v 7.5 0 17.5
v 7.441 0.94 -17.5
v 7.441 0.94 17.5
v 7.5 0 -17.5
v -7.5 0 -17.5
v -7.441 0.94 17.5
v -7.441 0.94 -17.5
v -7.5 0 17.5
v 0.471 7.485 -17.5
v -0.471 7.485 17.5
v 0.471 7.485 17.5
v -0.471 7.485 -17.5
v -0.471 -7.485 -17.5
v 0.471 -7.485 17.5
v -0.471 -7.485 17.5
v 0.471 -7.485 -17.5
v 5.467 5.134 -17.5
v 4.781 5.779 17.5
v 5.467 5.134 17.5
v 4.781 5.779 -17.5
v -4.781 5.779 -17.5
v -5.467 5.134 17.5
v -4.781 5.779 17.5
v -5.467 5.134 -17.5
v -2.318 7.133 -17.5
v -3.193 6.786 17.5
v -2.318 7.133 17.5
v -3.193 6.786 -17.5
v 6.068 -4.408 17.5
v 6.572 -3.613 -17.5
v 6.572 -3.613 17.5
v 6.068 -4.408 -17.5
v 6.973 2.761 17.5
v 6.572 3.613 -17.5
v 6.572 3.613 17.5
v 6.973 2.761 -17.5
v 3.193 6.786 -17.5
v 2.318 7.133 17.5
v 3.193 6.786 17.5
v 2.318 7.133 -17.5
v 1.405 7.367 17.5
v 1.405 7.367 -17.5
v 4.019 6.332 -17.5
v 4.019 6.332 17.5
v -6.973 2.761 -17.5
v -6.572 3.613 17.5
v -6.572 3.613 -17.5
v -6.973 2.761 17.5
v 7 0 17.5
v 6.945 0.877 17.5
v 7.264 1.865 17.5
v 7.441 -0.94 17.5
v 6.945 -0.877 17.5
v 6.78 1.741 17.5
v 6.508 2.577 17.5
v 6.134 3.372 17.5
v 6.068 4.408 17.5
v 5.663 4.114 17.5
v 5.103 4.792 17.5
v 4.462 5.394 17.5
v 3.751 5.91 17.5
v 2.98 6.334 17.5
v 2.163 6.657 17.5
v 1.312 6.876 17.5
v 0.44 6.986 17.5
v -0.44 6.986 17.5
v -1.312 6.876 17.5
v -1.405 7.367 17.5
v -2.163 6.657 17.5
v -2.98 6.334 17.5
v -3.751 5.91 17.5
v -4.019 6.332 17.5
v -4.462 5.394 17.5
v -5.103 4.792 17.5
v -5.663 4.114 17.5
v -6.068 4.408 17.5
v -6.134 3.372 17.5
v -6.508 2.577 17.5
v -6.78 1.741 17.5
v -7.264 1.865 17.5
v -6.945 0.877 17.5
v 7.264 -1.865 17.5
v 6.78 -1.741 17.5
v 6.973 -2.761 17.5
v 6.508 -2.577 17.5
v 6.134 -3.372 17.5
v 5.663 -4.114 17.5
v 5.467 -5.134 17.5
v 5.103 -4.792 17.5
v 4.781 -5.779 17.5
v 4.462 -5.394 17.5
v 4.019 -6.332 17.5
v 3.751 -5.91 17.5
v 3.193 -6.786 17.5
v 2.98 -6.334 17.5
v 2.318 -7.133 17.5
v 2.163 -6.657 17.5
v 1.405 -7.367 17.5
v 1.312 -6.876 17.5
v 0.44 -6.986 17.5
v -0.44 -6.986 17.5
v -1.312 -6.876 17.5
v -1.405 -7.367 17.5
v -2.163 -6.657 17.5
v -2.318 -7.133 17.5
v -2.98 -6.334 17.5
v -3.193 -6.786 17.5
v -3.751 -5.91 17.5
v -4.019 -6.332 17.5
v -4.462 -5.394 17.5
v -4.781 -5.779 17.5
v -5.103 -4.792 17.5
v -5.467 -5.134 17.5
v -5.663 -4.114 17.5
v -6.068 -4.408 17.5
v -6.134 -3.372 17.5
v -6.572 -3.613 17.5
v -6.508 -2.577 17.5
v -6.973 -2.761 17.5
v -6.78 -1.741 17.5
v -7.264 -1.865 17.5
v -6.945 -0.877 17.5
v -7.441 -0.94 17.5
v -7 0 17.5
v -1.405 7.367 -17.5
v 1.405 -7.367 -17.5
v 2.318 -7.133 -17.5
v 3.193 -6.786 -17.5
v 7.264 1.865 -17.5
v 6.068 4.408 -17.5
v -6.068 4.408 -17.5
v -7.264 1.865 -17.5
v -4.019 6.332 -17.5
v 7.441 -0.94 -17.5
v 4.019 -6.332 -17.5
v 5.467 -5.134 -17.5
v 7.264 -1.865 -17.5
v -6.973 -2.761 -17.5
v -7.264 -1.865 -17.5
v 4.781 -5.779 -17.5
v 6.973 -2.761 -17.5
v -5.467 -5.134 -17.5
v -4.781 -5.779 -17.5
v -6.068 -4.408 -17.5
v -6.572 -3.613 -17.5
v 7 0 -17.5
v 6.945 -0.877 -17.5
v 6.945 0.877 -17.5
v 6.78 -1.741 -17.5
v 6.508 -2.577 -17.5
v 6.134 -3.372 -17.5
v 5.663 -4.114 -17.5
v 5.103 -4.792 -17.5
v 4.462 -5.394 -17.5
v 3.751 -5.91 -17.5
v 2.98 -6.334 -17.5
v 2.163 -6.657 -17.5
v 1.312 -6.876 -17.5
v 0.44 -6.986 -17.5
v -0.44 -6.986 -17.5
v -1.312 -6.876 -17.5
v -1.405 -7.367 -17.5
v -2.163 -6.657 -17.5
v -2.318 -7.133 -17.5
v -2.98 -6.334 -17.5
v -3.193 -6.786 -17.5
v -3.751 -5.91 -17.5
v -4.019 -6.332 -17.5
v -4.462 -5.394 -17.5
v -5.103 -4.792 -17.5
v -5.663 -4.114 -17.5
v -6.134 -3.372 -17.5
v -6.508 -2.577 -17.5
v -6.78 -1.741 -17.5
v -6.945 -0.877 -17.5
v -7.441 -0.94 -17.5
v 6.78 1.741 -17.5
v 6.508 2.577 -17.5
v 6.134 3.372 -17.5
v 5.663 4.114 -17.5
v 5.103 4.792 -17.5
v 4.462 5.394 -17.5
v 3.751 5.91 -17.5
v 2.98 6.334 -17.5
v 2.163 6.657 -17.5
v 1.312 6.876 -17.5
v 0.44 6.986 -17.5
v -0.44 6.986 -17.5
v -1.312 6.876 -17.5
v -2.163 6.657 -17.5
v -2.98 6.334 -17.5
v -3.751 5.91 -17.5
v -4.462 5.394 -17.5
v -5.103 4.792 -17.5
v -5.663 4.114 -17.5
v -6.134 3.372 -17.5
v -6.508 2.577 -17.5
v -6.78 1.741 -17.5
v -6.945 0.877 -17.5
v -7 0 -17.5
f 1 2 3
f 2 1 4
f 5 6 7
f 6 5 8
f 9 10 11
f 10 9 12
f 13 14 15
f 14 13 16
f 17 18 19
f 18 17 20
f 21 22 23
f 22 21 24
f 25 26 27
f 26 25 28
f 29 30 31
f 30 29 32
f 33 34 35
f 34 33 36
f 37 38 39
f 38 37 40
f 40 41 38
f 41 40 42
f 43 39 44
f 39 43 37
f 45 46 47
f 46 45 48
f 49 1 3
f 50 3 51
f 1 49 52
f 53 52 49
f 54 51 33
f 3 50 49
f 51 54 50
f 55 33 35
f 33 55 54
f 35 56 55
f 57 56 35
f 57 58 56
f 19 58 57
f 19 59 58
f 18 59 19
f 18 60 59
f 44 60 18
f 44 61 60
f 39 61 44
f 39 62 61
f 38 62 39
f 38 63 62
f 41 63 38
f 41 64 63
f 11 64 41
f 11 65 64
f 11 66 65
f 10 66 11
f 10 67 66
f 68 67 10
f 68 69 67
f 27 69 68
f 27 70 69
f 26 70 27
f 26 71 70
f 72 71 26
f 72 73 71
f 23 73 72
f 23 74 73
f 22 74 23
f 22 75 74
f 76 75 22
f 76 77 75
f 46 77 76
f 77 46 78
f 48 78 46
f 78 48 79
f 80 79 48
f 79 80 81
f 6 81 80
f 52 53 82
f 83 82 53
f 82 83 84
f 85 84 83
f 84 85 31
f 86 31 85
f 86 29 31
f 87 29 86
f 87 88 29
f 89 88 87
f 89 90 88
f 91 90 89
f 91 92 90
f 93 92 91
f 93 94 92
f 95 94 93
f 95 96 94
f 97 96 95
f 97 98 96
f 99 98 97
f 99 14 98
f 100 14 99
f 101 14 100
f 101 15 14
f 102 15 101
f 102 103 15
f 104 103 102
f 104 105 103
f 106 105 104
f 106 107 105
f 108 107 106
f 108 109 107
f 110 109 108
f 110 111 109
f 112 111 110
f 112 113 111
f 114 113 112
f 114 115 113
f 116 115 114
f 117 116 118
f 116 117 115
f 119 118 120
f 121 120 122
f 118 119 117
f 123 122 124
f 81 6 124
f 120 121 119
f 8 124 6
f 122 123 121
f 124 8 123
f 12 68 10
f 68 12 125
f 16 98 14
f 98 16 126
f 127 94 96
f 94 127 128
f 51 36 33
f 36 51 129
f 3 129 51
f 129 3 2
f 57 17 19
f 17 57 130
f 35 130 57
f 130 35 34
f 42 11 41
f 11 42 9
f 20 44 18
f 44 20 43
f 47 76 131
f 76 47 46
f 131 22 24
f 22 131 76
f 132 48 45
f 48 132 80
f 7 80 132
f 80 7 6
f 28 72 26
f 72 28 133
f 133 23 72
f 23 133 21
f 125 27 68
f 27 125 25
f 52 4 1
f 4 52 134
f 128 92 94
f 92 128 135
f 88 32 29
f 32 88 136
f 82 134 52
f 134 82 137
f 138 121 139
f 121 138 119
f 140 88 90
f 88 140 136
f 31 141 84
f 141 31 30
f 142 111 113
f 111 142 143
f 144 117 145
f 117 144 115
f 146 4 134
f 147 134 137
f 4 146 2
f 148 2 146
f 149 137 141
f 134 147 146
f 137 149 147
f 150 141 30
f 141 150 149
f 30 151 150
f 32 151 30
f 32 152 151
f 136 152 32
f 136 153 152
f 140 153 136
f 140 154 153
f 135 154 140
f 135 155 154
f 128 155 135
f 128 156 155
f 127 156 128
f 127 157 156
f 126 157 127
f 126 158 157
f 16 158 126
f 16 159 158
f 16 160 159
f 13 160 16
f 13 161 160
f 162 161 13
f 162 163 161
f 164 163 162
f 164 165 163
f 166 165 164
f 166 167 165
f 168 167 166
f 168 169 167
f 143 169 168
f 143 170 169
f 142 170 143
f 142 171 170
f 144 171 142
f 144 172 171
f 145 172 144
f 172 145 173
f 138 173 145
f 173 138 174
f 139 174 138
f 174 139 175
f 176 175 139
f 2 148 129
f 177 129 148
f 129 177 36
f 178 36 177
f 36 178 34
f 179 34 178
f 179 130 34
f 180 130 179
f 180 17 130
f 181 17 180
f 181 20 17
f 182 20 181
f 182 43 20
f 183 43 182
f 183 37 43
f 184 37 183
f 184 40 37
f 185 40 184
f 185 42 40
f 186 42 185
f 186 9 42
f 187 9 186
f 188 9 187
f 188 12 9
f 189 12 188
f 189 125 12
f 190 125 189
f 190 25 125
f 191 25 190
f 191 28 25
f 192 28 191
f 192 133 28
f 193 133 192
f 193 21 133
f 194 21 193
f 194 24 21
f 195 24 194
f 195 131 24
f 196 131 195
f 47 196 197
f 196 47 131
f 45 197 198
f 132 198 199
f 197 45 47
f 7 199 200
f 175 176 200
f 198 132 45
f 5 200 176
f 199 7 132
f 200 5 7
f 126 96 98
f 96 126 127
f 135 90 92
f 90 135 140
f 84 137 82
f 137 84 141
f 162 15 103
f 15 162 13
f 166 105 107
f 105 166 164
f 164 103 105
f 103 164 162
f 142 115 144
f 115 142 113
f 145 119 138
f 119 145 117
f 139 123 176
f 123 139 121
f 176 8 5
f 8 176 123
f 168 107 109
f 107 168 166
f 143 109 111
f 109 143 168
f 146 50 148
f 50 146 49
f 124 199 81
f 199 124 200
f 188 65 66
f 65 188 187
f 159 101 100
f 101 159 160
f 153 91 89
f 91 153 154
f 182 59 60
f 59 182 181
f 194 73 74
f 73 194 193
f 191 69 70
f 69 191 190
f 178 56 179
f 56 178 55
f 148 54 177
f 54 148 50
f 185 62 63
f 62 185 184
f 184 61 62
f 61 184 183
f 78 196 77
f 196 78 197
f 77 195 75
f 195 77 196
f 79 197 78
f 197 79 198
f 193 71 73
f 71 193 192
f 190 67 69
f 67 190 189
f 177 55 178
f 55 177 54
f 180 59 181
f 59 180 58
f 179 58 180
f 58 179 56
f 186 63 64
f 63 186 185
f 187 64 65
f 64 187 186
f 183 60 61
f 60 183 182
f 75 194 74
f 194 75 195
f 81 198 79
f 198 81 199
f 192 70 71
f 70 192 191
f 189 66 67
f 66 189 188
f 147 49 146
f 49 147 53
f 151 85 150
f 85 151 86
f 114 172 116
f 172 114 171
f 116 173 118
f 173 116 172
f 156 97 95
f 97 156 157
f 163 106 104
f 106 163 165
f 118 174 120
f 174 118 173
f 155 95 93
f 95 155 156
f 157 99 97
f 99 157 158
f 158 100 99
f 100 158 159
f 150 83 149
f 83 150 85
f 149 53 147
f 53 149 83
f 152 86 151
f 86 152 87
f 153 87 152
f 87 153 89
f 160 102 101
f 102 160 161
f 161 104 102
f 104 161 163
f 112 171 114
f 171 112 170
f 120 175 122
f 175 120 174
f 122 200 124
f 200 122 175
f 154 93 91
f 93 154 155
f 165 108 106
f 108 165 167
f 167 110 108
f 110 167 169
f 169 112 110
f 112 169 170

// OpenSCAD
$fn = 50;


difference() {
	union() {
		translate(v = [0, 0, -17.5000000000]) {
			cylinder(h = 35, r = 7.5000000000);
		}
	}
	union() {
		translate(v = [0, 0, -100.0000000000]) {
			cylinder(h = 200, r = 7);
		}
	}
}
